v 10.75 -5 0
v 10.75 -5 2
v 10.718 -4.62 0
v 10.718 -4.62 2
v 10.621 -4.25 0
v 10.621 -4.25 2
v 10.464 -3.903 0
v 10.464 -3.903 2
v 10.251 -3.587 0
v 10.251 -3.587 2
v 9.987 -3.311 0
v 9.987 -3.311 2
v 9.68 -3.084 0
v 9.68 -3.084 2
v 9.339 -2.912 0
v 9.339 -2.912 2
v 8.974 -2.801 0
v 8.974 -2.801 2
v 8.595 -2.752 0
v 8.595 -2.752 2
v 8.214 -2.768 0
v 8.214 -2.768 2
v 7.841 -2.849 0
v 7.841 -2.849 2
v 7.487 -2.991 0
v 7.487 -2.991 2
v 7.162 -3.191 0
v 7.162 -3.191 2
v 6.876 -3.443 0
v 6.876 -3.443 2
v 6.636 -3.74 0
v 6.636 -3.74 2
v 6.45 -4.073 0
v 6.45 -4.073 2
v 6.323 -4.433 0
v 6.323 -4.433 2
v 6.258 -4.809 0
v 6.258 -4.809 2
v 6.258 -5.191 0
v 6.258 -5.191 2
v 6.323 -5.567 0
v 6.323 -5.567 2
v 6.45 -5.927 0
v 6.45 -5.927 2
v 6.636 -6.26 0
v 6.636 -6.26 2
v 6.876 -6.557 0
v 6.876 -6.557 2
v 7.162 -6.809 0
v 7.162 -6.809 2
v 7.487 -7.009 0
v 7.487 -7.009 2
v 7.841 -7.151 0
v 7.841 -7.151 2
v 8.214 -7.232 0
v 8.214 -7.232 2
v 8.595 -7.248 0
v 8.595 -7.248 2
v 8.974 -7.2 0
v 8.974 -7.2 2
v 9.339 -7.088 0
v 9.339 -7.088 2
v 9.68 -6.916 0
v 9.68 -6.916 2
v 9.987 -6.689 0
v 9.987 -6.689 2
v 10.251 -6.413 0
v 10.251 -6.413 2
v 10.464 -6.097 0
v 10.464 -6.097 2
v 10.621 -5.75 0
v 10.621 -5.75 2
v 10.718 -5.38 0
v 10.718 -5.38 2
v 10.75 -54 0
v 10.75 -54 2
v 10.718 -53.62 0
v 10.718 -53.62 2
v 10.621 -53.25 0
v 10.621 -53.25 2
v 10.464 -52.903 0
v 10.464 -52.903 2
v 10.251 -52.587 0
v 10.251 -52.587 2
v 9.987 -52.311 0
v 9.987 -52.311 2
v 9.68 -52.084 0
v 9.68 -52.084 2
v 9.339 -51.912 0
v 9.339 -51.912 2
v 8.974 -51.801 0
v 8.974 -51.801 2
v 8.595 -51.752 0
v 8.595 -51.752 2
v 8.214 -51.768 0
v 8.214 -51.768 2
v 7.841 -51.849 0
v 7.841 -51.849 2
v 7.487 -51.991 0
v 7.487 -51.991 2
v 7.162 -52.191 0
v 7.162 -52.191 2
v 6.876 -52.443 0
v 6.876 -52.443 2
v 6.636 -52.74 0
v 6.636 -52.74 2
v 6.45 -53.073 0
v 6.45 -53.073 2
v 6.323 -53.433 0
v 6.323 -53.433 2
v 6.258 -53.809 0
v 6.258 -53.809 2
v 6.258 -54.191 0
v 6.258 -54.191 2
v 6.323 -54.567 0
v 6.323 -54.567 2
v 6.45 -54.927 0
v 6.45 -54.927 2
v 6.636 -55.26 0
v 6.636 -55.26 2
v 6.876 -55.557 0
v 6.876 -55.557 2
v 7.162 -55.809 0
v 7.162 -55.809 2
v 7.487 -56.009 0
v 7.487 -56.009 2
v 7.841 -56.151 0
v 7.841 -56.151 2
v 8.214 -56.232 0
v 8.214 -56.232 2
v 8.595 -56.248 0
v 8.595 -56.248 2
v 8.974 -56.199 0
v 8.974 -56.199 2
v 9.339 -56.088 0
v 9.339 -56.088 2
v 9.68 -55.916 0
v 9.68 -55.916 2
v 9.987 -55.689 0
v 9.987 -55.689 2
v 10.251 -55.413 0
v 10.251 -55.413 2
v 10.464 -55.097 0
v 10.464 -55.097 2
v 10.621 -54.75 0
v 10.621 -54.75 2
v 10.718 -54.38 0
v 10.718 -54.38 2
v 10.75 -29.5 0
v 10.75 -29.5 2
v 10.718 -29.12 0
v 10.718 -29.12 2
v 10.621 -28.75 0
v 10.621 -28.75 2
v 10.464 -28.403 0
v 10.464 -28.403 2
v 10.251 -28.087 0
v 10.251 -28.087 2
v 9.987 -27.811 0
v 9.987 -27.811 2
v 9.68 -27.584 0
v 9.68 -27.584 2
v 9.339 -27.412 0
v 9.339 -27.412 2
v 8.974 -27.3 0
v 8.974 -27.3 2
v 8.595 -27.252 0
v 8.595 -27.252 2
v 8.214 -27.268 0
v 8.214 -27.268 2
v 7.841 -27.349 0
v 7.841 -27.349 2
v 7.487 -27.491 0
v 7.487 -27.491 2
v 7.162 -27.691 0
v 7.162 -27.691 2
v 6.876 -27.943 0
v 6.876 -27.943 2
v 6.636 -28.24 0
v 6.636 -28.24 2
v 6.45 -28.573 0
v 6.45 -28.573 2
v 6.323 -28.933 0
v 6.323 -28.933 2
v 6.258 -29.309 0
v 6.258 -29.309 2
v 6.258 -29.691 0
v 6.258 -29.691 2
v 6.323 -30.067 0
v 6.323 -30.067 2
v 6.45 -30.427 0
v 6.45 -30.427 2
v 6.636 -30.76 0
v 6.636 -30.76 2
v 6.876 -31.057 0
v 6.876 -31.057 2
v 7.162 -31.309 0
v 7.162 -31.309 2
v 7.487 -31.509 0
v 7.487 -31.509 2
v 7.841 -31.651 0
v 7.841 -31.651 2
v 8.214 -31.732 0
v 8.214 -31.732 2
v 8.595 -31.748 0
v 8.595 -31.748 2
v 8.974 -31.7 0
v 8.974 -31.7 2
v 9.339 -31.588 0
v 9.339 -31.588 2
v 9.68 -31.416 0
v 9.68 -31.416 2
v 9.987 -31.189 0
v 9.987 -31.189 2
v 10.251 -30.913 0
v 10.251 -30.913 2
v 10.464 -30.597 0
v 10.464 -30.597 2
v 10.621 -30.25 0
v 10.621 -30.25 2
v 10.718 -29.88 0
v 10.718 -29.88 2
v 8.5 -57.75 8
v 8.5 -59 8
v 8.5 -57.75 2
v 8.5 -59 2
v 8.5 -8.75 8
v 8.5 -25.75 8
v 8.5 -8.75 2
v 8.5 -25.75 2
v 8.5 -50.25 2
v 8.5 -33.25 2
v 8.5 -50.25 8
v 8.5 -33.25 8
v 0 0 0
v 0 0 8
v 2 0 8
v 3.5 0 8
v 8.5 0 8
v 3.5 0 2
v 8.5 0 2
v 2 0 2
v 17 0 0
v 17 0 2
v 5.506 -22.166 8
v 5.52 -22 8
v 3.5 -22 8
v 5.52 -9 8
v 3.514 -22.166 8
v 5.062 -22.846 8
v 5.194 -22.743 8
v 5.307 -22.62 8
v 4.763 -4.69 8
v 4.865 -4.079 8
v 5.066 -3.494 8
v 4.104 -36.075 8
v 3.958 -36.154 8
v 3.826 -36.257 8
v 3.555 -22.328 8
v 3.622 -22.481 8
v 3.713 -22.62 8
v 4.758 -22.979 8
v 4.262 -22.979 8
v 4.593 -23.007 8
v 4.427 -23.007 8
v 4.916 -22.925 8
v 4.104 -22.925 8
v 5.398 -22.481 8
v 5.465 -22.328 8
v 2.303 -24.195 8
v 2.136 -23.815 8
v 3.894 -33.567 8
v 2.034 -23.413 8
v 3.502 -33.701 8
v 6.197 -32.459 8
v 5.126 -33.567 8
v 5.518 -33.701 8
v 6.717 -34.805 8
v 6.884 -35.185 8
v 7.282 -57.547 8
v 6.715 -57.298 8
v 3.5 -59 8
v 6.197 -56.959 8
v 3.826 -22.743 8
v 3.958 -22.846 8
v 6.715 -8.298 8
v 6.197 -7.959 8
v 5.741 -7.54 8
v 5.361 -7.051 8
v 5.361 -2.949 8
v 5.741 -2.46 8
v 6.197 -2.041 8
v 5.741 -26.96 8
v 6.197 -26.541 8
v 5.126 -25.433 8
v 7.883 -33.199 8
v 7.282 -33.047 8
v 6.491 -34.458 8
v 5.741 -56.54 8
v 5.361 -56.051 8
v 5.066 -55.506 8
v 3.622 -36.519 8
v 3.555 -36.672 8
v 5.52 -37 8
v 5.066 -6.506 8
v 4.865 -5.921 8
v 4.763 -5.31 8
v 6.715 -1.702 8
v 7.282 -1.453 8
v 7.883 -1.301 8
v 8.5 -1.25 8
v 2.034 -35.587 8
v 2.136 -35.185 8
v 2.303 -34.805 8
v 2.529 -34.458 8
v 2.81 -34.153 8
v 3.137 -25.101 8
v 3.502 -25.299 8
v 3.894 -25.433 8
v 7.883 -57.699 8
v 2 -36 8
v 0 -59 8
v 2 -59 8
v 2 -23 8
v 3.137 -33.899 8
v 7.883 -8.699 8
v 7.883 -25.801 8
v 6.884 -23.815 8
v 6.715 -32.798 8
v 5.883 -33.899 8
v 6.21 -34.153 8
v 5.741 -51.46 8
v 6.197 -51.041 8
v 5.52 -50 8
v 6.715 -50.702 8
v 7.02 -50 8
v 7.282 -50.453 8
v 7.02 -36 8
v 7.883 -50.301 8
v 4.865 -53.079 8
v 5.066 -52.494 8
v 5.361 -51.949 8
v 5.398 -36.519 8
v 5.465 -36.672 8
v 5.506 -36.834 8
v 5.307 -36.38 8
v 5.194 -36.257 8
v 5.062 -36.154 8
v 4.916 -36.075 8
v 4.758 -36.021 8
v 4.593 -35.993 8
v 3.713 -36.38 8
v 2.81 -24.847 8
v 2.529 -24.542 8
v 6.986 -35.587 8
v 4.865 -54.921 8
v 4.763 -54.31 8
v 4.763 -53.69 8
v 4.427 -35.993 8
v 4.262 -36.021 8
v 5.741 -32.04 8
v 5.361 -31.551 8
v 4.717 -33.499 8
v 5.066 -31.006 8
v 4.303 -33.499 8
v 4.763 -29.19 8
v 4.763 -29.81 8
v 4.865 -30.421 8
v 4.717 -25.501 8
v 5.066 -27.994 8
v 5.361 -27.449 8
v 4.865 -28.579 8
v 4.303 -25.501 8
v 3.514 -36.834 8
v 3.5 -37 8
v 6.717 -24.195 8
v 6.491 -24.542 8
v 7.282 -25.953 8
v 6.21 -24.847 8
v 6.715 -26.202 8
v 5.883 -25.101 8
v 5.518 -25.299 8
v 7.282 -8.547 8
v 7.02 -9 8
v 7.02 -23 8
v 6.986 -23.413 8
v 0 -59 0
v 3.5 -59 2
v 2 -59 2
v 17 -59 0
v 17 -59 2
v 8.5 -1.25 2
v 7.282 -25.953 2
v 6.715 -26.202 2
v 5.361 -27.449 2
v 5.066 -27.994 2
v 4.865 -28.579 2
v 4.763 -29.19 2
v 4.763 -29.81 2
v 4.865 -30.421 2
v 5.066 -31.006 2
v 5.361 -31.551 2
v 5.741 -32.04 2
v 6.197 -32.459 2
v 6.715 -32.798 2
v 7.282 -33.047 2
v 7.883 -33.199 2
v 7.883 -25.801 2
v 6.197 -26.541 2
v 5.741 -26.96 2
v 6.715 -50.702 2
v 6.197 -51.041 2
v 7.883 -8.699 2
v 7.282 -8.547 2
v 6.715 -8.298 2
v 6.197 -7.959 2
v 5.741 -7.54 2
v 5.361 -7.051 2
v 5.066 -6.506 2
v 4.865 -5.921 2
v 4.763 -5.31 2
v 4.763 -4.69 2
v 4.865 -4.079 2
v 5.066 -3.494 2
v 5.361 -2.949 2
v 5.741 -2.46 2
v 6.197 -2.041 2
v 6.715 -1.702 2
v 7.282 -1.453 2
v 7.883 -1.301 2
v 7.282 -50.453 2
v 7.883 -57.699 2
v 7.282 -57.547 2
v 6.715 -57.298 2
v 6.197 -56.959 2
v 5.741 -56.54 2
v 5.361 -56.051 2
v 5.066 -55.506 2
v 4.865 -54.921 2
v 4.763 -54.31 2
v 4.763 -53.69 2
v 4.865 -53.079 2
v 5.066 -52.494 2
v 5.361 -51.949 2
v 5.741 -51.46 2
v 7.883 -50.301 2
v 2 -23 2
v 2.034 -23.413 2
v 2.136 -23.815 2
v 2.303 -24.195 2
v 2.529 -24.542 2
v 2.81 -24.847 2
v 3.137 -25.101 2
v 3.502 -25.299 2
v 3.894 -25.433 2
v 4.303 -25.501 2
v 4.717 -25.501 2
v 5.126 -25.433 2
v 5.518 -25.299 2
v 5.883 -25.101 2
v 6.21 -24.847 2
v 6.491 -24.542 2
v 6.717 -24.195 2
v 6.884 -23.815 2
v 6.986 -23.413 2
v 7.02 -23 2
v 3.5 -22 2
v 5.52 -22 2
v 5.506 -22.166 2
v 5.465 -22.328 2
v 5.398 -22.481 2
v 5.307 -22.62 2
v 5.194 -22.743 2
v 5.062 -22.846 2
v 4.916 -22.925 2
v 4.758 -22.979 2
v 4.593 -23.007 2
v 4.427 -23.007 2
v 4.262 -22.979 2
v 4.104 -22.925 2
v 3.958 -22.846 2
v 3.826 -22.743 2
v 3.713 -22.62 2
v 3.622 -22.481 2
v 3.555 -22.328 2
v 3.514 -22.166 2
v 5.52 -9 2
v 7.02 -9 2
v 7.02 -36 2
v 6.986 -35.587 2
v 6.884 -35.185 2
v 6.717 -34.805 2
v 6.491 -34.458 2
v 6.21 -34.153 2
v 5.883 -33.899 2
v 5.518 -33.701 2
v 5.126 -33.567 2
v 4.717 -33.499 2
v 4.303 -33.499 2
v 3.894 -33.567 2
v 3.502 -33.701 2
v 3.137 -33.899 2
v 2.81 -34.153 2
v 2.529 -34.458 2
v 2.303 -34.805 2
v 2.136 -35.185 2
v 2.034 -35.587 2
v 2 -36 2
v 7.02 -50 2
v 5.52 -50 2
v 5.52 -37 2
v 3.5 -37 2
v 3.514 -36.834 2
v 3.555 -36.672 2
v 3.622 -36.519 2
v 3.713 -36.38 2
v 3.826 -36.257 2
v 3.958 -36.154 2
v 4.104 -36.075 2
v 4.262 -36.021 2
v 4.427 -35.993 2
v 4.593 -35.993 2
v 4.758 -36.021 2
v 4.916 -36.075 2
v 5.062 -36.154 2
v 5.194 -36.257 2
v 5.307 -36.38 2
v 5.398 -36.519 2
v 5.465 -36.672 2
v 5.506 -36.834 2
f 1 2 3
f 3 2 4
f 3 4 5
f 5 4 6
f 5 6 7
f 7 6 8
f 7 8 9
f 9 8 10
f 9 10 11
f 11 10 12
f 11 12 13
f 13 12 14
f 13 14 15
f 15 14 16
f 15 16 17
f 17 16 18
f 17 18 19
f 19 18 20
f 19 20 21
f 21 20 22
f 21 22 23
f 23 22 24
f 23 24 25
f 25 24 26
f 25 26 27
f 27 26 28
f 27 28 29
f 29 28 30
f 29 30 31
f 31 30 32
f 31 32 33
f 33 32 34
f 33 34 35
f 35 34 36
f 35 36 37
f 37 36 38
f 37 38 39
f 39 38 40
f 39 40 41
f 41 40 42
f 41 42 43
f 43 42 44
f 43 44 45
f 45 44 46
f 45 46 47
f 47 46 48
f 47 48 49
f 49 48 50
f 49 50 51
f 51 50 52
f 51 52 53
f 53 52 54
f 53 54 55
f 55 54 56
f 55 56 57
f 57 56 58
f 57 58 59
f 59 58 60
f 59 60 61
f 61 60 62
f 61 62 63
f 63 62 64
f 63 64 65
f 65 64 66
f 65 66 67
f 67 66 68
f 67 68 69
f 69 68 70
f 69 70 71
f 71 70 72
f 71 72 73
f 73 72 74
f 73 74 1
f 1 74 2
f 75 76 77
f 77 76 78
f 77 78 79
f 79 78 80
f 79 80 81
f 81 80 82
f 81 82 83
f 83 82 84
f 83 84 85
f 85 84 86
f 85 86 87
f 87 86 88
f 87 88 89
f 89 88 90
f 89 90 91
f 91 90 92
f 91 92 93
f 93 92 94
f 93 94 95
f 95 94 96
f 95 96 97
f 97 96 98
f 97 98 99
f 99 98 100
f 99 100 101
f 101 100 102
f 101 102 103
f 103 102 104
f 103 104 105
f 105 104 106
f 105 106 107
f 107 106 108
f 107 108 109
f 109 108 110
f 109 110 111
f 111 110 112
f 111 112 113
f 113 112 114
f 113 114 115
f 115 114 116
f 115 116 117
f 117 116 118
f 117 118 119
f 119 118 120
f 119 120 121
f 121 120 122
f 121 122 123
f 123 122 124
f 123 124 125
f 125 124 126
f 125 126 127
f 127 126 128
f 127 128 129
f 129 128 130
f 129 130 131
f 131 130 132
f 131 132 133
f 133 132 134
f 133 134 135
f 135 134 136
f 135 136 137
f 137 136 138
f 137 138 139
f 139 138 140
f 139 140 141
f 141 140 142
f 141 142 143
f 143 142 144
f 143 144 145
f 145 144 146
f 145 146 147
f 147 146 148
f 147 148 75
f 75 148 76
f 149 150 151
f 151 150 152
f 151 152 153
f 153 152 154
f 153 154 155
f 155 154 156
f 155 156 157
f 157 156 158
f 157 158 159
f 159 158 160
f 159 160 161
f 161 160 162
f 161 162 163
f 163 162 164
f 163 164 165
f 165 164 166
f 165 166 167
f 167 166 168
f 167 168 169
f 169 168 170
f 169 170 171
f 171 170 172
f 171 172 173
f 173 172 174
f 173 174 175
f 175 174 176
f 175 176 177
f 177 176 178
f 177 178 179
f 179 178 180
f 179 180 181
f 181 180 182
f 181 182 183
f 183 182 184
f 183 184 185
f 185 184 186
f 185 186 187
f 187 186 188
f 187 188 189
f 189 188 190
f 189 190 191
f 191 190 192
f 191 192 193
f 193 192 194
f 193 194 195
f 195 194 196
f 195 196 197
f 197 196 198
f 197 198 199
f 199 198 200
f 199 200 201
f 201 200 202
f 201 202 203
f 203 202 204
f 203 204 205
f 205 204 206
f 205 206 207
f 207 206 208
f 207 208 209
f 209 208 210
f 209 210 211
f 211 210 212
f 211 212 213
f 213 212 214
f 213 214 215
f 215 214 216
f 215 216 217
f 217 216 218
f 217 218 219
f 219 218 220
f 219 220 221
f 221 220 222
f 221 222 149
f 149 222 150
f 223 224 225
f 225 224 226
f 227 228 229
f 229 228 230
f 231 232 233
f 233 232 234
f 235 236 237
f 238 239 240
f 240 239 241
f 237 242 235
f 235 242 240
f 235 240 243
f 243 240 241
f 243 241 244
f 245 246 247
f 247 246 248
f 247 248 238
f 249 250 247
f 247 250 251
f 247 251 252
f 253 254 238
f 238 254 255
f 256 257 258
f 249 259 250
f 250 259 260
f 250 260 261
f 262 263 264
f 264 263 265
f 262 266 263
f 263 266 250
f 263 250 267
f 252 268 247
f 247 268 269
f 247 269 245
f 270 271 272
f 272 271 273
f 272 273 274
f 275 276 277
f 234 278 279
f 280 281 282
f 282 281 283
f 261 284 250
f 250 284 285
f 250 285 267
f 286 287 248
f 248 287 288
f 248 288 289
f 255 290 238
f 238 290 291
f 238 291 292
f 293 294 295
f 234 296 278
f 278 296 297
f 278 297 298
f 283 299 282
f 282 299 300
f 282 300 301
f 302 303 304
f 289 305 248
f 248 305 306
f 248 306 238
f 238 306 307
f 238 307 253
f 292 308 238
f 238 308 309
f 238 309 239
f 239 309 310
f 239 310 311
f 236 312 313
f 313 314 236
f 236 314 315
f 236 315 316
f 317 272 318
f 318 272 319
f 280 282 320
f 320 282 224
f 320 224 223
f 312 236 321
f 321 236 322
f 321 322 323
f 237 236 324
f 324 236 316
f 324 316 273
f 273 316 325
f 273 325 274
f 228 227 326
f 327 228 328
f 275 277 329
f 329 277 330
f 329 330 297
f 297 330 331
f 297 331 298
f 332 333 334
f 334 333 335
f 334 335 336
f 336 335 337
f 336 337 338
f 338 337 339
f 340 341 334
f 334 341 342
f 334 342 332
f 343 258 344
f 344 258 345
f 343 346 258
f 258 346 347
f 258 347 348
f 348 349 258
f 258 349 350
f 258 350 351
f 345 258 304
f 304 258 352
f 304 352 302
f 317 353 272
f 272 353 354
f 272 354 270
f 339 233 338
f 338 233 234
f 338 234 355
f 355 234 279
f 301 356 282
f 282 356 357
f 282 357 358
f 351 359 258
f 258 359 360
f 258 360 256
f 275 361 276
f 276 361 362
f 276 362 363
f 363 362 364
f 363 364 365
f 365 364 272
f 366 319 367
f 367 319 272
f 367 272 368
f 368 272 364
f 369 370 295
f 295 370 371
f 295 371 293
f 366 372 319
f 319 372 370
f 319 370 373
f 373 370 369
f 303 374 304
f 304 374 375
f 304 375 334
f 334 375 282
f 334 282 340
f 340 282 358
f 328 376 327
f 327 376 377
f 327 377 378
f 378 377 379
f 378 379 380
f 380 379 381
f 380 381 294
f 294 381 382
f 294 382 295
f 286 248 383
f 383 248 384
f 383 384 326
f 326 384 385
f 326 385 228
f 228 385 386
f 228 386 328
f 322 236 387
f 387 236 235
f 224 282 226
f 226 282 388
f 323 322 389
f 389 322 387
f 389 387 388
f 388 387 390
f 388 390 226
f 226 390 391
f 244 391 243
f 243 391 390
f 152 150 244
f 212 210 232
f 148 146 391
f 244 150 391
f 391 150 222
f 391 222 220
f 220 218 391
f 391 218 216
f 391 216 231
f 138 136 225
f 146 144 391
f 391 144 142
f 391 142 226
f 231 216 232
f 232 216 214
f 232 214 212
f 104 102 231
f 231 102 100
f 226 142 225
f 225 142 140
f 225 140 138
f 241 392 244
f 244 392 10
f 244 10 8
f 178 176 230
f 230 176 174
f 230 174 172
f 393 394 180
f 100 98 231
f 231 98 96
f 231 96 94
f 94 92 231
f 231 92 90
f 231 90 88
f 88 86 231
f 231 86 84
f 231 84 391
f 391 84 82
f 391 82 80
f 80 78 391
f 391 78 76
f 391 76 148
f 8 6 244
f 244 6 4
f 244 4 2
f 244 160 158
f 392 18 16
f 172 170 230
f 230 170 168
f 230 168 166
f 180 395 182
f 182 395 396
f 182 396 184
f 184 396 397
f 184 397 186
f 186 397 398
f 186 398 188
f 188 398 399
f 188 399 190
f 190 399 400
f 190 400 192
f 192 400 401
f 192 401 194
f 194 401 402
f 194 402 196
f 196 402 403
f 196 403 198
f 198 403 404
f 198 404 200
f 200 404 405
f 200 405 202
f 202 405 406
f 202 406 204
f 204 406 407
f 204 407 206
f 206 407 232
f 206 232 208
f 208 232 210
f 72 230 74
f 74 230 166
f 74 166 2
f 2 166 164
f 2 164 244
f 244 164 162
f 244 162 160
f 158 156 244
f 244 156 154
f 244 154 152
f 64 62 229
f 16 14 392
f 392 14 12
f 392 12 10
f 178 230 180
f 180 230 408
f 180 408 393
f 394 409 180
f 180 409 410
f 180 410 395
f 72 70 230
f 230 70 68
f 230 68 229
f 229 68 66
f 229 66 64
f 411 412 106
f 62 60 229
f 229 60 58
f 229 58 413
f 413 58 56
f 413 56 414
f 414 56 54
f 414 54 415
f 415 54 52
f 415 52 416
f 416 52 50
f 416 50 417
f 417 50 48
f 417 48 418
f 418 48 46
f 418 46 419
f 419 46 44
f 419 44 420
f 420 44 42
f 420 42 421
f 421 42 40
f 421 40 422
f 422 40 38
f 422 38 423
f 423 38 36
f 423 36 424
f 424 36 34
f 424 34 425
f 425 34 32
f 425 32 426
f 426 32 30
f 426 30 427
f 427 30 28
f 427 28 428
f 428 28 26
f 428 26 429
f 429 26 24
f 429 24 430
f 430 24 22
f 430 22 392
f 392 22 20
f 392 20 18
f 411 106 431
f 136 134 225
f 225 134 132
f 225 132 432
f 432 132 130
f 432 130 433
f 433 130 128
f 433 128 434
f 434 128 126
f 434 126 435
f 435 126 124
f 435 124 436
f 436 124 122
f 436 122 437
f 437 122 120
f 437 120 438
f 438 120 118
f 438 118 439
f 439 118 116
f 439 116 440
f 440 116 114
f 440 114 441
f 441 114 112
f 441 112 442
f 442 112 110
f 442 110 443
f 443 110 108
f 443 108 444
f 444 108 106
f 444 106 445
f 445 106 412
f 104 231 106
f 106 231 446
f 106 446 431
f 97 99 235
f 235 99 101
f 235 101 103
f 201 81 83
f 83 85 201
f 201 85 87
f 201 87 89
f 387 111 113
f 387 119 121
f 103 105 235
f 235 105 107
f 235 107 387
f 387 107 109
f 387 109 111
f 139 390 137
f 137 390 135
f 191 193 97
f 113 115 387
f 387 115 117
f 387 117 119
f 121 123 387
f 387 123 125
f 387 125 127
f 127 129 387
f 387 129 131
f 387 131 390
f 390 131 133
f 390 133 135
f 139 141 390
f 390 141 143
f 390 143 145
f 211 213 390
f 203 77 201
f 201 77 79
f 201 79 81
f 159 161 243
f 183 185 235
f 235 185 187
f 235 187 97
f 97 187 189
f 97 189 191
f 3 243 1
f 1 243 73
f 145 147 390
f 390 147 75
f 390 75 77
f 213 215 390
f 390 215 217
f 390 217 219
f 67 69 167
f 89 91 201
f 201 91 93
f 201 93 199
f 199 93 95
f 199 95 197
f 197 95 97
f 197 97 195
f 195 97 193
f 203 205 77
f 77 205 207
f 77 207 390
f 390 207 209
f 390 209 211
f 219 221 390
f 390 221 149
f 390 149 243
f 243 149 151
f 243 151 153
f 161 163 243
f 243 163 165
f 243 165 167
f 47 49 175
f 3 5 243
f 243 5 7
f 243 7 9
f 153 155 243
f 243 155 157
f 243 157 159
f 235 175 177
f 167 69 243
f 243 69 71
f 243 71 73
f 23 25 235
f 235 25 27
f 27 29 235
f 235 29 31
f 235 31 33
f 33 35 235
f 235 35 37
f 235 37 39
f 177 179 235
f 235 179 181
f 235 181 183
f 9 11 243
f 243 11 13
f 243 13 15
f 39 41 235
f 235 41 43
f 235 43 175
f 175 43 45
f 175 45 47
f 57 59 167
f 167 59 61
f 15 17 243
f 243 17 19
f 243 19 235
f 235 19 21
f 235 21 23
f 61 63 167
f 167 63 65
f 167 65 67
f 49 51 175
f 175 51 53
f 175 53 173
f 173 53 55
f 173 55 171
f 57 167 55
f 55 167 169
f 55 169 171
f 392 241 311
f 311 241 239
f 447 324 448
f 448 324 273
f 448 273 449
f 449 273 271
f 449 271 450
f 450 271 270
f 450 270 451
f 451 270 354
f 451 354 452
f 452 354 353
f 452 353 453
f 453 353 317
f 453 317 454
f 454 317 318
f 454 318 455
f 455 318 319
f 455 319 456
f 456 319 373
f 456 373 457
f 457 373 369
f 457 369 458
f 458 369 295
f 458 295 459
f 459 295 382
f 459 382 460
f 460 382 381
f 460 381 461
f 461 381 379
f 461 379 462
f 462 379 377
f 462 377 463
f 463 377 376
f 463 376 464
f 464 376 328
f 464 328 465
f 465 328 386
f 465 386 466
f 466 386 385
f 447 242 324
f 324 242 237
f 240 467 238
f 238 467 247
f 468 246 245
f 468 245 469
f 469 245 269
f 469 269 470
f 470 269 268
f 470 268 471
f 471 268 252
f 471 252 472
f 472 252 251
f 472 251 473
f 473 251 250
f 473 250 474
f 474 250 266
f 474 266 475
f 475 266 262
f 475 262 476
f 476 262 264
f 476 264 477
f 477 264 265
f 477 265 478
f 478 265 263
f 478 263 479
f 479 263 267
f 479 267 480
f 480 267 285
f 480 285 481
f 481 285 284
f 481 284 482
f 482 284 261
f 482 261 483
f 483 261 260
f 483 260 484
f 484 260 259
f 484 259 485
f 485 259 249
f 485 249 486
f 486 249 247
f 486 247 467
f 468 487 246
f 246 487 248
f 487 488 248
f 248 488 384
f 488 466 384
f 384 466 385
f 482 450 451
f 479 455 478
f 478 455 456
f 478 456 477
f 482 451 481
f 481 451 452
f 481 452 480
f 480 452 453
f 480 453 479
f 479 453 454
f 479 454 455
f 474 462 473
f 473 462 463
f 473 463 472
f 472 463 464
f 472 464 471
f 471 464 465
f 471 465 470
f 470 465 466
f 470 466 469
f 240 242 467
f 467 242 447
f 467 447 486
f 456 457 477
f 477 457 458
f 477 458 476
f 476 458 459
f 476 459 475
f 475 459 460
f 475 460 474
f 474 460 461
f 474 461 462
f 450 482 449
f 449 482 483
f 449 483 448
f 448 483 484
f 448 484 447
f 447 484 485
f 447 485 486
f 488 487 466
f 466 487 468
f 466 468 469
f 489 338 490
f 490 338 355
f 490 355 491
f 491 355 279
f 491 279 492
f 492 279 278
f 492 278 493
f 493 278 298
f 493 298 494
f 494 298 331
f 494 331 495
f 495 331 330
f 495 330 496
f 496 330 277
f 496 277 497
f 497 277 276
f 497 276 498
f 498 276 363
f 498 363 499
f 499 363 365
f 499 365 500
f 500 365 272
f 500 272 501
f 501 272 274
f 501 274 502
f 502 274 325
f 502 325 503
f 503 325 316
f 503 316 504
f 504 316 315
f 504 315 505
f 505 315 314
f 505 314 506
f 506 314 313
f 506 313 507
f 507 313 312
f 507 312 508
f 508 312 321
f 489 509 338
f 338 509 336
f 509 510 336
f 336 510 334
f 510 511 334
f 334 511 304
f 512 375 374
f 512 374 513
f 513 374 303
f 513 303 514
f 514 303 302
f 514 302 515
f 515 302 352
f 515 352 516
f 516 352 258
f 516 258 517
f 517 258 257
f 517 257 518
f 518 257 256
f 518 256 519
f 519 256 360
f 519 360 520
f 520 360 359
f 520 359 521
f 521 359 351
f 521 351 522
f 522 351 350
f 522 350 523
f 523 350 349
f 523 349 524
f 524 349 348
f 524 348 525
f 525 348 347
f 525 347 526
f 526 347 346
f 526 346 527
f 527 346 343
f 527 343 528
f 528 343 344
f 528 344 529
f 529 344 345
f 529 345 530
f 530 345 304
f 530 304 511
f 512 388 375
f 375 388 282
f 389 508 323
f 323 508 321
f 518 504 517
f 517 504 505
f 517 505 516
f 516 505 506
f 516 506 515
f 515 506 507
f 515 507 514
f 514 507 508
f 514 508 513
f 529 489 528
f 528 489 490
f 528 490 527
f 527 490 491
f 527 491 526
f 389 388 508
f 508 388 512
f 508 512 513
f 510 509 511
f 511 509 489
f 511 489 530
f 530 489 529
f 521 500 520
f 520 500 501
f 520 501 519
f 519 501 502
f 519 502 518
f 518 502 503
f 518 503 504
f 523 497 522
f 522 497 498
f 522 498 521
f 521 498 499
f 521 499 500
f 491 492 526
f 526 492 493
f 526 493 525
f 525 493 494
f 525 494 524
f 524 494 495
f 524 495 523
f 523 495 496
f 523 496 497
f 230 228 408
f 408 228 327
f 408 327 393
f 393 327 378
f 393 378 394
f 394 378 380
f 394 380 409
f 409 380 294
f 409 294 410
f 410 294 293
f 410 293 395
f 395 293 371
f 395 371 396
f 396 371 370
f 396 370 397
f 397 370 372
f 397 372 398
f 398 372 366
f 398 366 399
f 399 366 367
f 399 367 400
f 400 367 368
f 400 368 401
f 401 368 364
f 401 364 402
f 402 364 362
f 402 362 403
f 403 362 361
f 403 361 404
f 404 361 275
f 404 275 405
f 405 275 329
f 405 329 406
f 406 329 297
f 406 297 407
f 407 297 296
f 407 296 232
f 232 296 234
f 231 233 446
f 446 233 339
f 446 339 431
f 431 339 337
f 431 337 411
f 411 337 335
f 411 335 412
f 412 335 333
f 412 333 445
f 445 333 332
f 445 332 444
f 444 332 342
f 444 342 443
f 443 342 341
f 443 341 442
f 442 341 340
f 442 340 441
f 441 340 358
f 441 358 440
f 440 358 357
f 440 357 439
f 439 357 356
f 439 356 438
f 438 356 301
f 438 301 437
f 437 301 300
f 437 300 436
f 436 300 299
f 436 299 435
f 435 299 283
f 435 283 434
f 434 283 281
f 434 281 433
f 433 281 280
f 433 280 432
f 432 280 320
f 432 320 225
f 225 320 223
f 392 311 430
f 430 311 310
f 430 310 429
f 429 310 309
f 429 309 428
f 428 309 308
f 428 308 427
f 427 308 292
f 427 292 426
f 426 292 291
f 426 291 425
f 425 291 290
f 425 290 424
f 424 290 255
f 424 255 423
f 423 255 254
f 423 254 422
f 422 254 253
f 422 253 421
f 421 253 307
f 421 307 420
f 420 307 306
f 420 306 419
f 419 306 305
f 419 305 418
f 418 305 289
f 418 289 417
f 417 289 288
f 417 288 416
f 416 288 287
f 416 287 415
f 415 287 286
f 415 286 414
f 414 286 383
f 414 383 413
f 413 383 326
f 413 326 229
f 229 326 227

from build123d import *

# Parameters (mm, degrees)
ESQUISSE1_W             = 17
ESQUISSE1_H             = 59
BOSS_EXTRU_1_DEPTH      = 2
ESQUISSE2_W             = 8.5
ESQUISSE2_H             = 59
BOSS_EXTRU_2_DEPTH      = 6
ENL_V_MAT_EXTRU_1_DEPTH = 6
ESQUISSE4_R             = 2.25
ENL_V_MAT_EXTRU_4_DEPTH = 22
ESQUISSE6_R             = 3.75
ENL_V_MAT_EXTRU_5_DEPTH = 6


with BuildPart() as part:
    # Esquisse1 → Boss.-Extru.1 (new body)
    with BuildSketch(Plane.XY):
        with Locations((8.5, -29.5)):
            Rectangle(ESQUISSE1_W, ESQUISSE1_H)
    extrude(amount=BOSS_EXTRU_1_DEPTH)

    # Esquisse2 → Boss.-Extru.2 (add)
    with BuildSketch(Plane.XY.offset(2)):
        with Locations((4.25, -29.5)):
            Rectangle(ESQUISSE2_W, ESQUISSE2_H)
    extrude(amount=BOSS_EXTRU_2_DEPTH)

    # Esquisse3 → Enlèv. mat.-Extru.1 (cut)
    with BuildSketch(Plane.XY.offset(8)):
        Polygon((5.519925502, -9), (5.519925502, -22), (5.519925502, -23), (7.019925502, -23), (7.019925502, -9), align=None)
        with BuildLine():
            Line((3.5, -23), (2, -23))
            ThreePointArc((2, -23), (2.408191843, -24.372032093), (3.5, -25.297800743))
            Line((3.5, -25.297800743), (3.5, -23))
        make_face()
        with BuildLine():
            Line((5.519925502, -23), (5.519925502, -25.297800743))
            ThreePointArc((5.519925502, -25.297800743), (6.611733659, -24.372032093), (7.019925502, -23))
            Line((7.019925502, -23), (5.519925502, -23))
        make_face()
        Polygon((5.519925502, -36), (5.519925502, -37), (5.519925502, -50), (7.019925502, -50), (7.019925502, -36), align=None)
        Polygon((2, -36), (2, -59), (3.5, -59), (3.5, -37), (3.5, -36), align=None)
        with BuildLine():
            Line((3.5, -33.702199257), (3.5, -36))
            Line((3.5, -36), (4.368453888, -36))
            ThreePointArc((4.368453888, -36), (4.509962751, -35.990037249), (4.651471614, -36))
            Line((4.651471614, -36), (5.519925502, -36))
            Line((5.519925502, -36), (5.519925502, -33.702199257))
            ThreePointArc((5.519925502, -33.702199257), (4.509962751, -33.490037249), (3.5, -33.702199257))
        make_face()
        with BuildLine():
            ThreePointArc((3.5, -33.702199257), (2.408191843, -34.627967907), (2, -36))
            Line((2, -36), (3.5, -36))
            Line((3.5, -36), (3.5, -33.702199257))
        make_face()
        with BuildLine():
            ThreePointArc((7.019925502, -36), (6.611733659, -34.627967907), (5.519925502, -33.702199257))
            Line((5.519925502, -33.702199257), (5.519925502, -36))
            Line((5.519925502, -36), (7.019925502, -36))
        make_face()
        with BuildLine():
            Line((4.368453888, -23), (3.5, -23))
            Line((3.5, -23), (3.5, -25.297800743))
            ThreePointArc((3.5, -25.297800743), (4.509962751, -25.509962751), (5.519925502, -25.297800743))
            Line((5.519925502, -25.297800743), (5.519925502, -23))
            Line((5.519925502, -23), (4.651471614, -23))
            ThreePointArc((4.651471614, -23), (4.509962751, -23.009962751), (4.368453888, -23))
        make_face()
        Polygon((2, 0), (2, -23), (3.5, -23), (3.5, -22), (3.5, 0), align=None)
        with BuildLine():
            Line((3.5, -22), (3.5, -23))
            Line((3.5, -23), (4.368453888, -23))
            ThreePointArc((4.368453888, -23), (3.747419821, -22.662233372), (3.5, -22))
        make_face()
        with BuildLine():
            Line((5.519925502, -23), (5.519925502, -22))
            ThreePointArc((5.519925502, -22), (5.272505681, -22.662233372), (4.651471614, -23))
            Line((4.651471614, -23), (5.519925502, -23))
        make_face()
        with BuildLine():
            Line((3.5, -36), (3.5, -37))
            ThreePointArc((3.5, -37), (3.747419821, -36.337766628), (4.368453888, -36))
            Line((4.368453888, -36), (3.5, -36))
        make_face()
        with BuildLine():
            ThreePointArc((4.651471614, -36), (5.272505681, -36.337766628), (5.519925502, -37))
            Line((5.519925502, -37), (5.519925502, -36))
            Line((5.519925502, -36), (4.651471614, -36))
        make_face()
    extrude(amount=-ENL_V_MAT_EXTRU_1_DEPTH, mode=Mode.SUBTRACT)

    # Esquisse4 → Enlèv. mat.-Extru.4 (cut)
    with BuildSketch(Plane.XY.offset(8)):
        with Locations((8.5, -29.5)):
            Circle(ESQUISSE4_R)
        with Locations((8.5, -54)):
            Circle(ESQUISSE4_R)
        with Locations((8.5, -5)):
            Circle(ESQUISSE4_R)
    extrude(amount=-ENL_V_MAT_EXTRU_4_DEPTH, mode=Mode.SUBTRACT)

    # Esquisse6 → Enlèv. mat.-Extru.5 (cut)
    with BuildSketch(Plane.XY.offset(8)):
        with Locations((8.5, -29.5)):
            Circle(ESQUISSE6_R)
        with Locations((8.5, -5)):
            Circle(ESQUISSE6_R)
        with Locations((8.5, -54)):
            Circle(ESQUISSE6_R)
    extrude(amount=-ENL_V_MAT_EXTRU_5_DEPTH, mode=Mode.SUBTRACT)


solid = part.part
